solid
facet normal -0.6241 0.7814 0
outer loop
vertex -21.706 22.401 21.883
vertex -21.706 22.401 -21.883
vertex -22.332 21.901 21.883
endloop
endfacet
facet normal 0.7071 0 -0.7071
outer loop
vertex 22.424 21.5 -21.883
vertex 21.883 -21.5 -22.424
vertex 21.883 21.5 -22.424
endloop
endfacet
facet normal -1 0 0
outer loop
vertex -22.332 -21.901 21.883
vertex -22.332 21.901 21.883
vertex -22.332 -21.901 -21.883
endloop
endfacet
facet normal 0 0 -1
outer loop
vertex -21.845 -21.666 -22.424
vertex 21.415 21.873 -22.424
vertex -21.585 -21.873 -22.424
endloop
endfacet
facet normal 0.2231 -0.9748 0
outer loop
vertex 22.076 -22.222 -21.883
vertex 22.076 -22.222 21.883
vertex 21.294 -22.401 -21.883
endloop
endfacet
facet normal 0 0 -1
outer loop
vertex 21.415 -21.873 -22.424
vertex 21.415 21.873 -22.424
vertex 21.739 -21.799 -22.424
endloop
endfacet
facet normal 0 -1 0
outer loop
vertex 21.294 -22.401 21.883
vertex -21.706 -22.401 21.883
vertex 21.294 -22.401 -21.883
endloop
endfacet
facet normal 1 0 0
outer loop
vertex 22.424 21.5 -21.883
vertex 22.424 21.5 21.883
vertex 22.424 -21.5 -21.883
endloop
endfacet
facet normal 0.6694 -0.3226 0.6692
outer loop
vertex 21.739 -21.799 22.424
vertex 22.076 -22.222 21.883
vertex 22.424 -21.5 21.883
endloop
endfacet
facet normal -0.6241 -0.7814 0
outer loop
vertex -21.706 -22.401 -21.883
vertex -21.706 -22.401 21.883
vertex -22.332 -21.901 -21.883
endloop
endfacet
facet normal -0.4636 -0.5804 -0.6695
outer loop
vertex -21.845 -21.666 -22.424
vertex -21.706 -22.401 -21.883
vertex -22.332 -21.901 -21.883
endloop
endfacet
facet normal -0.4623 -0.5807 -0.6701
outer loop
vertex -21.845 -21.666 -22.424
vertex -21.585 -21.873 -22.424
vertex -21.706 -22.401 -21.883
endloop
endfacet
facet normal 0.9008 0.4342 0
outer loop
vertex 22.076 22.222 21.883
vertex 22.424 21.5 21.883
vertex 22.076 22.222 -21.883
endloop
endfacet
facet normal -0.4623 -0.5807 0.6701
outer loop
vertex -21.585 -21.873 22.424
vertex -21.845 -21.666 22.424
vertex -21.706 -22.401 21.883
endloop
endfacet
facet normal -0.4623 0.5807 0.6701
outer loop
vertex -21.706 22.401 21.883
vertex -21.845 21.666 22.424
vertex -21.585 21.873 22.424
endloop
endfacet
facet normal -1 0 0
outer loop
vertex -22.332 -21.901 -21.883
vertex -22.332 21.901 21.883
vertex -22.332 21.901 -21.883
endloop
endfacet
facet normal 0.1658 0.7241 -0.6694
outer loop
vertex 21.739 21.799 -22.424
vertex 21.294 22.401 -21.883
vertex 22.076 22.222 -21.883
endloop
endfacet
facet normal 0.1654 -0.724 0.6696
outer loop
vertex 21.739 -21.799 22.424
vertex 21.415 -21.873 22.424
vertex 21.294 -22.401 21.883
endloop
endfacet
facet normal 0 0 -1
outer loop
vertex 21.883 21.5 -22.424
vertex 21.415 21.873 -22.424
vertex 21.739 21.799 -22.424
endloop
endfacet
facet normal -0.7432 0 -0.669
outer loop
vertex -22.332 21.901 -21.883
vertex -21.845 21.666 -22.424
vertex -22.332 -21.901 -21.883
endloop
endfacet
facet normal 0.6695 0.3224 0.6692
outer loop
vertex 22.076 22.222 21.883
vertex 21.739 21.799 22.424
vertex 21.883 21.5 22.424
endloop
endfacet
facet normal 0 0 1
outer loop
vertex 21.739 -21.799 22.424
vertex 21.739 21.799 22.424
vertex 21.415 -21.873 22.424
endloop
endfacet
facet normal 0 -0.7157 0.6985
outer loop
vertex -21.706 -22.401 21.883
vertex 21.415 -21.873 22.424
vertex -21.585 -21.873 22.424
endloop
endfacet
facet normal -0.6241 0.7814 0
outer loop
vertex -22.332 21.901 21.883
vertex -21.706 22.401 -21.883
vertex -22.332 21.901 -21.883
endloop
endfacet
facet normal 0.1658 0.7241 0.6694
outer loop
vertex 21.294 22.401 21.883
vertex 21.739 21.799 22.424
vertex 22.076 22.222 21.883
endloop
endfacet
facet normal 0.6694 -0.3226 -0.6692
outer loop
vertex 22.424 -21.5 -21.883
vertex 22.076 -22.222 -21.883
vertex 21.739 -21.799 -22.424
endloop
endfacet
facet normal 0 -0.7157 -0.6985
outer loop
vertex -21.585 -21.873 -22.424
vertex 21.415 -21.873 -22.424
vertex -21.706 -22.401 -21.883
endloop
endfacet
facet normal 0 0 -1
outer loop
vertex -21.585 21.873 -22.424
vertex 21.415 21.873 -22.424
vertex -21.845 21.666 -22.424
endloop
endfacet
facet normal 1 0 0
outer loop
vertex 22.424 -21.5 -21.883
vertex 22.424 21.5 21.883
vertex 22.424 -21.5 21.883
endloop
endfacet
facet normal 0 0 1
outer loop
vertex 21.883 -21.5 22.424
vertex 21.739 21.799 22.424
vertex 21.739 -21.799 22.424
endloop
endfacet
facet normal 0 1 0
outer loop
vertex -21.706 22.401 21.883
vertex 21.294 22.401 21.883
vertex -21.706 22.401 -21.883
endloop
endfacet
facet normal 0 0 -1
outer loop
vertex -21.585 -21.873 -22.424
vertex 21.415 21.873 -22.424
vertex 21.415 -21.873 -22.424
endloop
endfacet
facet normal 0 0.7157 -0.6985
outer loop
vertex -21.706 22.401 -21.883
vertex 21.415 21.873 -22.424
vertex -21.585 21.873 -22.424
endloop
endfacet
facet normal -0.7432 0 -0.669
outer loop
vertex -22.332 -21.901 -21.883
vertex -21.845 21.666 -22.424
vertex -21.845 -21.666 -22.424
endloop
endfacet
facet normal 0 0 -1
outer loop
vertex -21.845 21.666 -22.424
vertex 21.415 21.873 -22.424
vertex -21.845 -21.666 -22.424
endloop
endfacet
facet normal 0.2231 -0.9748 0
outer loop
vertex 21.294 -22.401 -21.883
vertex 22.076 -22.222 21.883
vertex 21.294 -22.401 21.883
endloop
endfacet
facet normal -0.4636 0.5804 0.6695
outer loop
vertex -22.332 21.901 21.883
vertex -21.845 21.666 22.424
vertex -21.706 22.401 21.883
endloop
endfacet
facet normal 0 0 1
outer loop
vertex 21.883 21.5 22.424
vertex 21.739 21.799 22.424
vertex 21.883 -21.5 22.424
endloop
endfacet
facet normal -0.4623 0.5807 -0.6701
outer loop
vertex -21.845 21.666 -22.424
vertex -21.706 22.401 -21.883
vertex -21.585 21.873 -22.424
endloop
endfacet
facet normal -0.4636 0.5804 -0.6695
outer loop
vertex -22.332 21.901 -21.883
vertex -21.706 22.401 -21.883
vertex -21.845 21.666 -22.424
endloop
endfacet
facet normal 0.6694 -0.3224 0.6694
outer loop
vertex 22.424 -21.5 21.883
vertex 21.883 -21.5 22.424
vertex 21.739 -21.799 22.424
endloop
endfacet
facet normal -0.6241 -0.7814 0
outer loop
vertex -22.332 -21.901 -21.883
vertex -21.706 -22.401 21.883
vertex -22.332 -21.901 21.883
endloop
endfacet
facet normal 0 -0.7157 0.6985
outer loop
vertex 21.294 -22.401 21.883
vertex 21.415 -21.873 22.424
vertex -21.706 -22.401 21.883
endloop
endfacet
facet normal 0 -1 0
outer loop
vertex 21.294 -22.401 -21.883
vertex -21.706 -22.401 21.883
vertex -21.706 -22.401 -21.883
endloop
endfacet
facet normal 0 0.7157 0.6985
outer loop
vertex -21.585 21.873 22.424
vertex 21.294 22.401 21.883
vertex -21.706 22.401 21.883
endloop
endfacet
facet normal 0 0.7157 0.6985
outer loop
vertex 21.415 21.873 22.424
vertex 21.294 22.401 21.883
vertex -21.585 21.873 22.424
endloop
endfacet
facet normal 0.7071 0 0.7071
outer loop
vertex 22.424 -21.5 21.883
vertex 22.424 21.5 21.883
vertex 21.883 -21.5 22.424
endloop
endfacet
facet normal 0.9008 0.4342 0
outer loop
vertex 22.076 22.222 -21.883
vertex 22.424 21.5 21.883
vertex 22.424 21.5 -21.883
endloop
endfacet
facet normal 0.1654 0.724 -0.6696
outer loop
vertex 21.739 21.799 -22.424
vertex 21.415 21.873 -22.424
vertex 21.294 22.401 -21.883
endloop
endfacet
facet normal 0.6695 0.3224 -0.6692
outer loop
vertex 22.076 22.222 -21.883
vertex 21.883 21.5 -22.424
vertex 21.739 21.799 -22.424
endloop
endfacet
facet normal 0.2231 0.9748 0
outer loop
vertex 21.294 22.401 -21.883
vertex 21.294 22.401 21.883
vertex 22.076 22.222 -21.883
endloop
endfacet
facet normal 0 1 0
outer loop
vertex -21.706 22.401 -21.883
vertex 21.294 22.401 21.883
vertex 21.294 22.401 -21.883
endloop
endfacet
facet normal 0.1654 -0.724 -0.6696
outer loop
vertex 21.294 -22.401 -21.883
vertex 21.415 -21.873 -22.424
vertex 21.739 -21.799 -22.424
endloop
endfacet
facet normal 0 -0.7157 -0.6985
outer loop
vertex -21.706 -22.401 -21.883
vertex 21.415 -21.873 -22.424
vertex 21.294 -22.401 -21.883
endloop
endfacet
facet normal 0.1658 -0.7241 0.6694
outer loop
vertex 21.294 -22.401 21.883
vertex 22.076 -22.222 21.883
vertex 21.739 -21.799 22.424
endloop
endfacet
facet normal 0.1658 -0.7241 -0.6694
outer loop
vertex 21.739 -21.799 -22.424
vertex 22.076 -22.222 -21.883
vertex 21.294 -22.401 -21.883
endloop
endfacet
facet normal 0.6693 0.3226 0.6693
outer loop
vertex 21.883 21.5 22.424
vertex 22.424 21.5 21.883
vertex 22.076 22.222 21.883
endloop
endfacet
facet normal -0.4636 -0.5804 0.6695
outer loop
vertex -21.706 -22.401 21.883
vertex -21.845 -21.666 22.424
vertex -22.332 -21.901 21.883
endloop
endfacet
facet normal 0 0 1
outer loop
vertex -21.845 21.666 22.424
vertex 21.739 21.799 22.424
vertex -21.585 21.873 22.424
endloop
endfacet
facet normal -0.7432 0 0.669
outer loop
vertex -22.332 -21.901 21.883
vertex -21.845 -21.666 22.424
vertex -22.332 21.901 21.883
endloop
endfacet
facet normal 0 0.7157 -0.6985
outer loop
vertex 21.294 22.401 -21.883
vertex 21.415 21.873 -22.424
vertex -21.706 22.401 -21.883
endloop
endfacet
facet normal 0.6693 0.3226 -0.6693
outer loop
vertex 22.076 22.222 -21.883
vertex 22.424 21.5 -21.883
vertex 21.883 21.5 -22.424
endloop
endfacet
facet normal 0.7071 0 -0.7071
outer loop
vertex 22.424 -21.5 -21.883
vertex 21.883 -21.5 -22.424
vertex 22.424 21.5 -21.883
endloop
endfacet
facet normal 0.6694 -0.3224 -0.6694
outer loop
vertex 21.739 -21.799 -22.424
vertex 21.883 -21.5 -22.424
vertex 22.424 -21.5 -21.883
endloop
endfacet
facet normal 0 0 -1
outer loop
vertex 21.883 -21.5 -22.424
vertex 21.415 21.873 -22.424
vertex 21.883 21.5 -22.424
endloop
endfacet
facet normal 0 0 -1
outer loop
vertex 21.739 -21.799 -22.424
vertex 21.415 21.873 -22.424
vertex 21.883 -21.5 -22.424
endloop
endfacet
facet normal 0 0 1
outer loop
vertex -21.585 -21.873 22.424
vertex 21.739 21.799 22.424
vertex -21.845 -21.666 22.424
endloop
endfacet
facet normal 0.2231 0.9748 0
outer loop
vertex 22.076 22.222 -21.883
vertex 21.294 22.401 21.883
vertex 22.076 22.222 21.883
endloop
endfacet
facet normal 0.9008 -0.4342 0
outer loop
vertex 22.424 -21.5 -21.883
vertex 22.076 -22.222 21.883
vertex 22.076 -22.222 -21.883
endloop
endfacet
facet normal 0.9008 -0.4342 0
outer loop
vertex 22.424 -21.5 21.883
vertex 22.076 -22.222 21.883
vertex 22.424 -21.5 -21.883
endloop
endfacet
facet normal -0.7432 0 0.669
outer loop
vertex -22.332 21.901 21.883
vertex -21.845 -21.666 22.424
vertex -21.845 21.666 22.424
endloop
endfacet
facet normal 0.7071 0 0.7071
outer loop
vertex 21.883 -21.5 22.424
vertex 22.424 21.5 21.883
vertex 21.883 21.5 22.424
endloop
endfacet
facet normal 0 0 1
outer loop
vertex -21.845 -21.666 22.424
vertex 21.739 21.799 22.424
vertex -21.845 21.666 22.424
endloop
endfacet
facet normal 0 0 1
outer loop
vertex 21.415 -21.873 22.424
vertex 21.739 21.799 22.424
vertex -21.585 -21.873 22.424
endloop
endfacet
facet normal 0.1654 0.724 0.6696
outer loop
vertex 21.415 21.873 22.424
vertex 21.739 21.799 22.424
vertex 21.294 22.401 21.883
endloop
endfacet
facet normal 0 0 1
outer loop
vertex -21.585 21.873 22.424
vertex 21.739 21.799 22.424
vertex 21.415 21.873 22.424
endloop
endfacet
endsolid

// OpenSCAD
// file: {path-to-Your-roundedCubesLibrary}/roundedCubes.scad
// More information on original version: https://danielupshaw.com/openscad-rounded-corners/
//
// Changed by GGS67 to remove some limitations:
//
//  1. Allow radius>length for rounded corners in one axis only (problem reported on 
//     original page in 2015)
//  2. Remove limitation where for apply_to=(x|y|z)max or (x|y|z)min the dimension 
//     of the corresponding perpendicular axis had to be at least 3 times the radius 
//     because of fixed cylinder height. Now cylinder height is always computed not
//     to interferr with opposite corner
//
//--- copy this include to your scad script
// include <./library/roundedCubes.scad>
//
// Set to 0.01 for higher definition curves (renders slower)
$fs = 1.0; //0.25;

module roundedCube(size = [1, 1, 1], center = false, radius = 0.5, apply_to = "all") {
	// If single value, convert to [x, y, z] vector
	size = (size[0] == undef) ? [size, size, size] : size;

    //echo(str("roundedcube([",size[0],size[1],size[2],"], radius=", radius, ", apply_to=",apply_to));
	translate_min = 0;
	translate_xmax = size[0];
	translate_ymax = size[1];
	translate_zmax = size[2];

	diameter = radius * 2;

    function adj2(i,dt,df) = (i==0)?dt:df;
    function adj(i,d) = adj2(i,d,-d);
    function adjR(i) = adj(i,radius);
    
	obj_translate = (center == false) ?
		[0, 0, 0] : [
			-(size[0] / 2),
			-(size[1] / 2),
			-(size[2] / 2)
		];

	translate(v = obj_translate) {
		hull() {
			for (xi = [0:1]) {
                translate_x = [translate_min, translate_xmax][xi];
				x_at = (xi == 0) ? "min" : "max";
				for (yi = [0:1]) {
                    translate_y = [translate_min, translate_ymax][yi];
   				    y_at = (yi == 0) ? "min" : "max";
					for (zi = [0:1]) {
                        translate_z = [translate_min, translate_zmax][zi];
    	     			z_at = (zi == 0) ? "min" : "max";

						if (
							(apply_to == "all") ||
							(apply_to == "xmin" && x_at == "min") || (apply_to == "xmax" && x_at == "max") ||
							(apply_to == "ymin" && y_at == "min") || (apply_to == "ymax" && y_at == "max") ||
							(apply_to == "zmin" && z_at == "min") || (apply_to == "zmax" && z_at == "max")
						) {
                // GGS: Separate translates to asccomodate changes allowing sizes < 3 x radius
    						translate(v = [translate_x+adjR(xi), translate_y+adjR(yi), translate_z+adjR(zi)])
							  sphere(r = radius);
						} else {
							rotate = 
								(apply_to == "xmin" || apply_to == "xmax" || apply_to == "x") ? [0, 90, 0] : (
								(apply_to == "ymin" || apply_to == "ymax" || apply_to == "y") ? [90, 90, 0] :
								[0, 0, 0]
							);
                //Compute cylinder height to make it work with cubbe sizes up to 3xradius which did not work
                // in original because cylinders would "eat" spheres
                            h1 =
								(apply_to == "xmin" || apply_to == "xmax" || apply_to == "x") ? size[0]-radius : (
								(apply_to == "ymin" || apply_to == "ymax" || apply_to == "y") ? size[1]-radius :
								size[2]-radius
							);
                            h2 =
								(apply_to == "xmin" || apply_to == "xmax" || apply_to == "x") ? size[0]/4 : (
								(apply_to == "ymin" || apply_to == "ymax" || apply_to == "y") ? size[1]/4 :
								size[2]/4
							);
                            h=(h1<h2 && h1>0)?h1:h2;
                            height=(h<radius)?h:radius;
                            //echo(str("h1=",h1));
                            //echo(str("h2=",h2));
                            //echo(str("h=",h));
                            //echo(str("height=",height));
                            trans =
								(apply_to == "xmin" || apply_to == "xmax" || apply_to == "x") ? [adj2(xi,0,-height),adjR(yi),adjR(zi)] : (
								(apply_to == "ymin" || apply_to == "ymax" || apply_to == "y") ? [adjR(xi),adj2(yi,0,-height),adjR(zi)] :
								[adjR(xi),adjR(yi),adj2(zi,0,-height)]
							);
                            //echo(trans);
                            translate(v = [translate_x+trans[0], translate_y+trans[1], translate_z+trans[2]])
		  					  rotate(a = rotate)
							    cylinder(h = height, r = radius, center = false);
						}
					}
				}
			}
		}
	}
}
// main file
/*
*   5x5 photo-cube
*/

include <{path-to-Your-roundedCubesLibrary}/roundedCubes.scad>

roundedCube([45,45,45], true, radius = 1.0, apply_to = "all");
